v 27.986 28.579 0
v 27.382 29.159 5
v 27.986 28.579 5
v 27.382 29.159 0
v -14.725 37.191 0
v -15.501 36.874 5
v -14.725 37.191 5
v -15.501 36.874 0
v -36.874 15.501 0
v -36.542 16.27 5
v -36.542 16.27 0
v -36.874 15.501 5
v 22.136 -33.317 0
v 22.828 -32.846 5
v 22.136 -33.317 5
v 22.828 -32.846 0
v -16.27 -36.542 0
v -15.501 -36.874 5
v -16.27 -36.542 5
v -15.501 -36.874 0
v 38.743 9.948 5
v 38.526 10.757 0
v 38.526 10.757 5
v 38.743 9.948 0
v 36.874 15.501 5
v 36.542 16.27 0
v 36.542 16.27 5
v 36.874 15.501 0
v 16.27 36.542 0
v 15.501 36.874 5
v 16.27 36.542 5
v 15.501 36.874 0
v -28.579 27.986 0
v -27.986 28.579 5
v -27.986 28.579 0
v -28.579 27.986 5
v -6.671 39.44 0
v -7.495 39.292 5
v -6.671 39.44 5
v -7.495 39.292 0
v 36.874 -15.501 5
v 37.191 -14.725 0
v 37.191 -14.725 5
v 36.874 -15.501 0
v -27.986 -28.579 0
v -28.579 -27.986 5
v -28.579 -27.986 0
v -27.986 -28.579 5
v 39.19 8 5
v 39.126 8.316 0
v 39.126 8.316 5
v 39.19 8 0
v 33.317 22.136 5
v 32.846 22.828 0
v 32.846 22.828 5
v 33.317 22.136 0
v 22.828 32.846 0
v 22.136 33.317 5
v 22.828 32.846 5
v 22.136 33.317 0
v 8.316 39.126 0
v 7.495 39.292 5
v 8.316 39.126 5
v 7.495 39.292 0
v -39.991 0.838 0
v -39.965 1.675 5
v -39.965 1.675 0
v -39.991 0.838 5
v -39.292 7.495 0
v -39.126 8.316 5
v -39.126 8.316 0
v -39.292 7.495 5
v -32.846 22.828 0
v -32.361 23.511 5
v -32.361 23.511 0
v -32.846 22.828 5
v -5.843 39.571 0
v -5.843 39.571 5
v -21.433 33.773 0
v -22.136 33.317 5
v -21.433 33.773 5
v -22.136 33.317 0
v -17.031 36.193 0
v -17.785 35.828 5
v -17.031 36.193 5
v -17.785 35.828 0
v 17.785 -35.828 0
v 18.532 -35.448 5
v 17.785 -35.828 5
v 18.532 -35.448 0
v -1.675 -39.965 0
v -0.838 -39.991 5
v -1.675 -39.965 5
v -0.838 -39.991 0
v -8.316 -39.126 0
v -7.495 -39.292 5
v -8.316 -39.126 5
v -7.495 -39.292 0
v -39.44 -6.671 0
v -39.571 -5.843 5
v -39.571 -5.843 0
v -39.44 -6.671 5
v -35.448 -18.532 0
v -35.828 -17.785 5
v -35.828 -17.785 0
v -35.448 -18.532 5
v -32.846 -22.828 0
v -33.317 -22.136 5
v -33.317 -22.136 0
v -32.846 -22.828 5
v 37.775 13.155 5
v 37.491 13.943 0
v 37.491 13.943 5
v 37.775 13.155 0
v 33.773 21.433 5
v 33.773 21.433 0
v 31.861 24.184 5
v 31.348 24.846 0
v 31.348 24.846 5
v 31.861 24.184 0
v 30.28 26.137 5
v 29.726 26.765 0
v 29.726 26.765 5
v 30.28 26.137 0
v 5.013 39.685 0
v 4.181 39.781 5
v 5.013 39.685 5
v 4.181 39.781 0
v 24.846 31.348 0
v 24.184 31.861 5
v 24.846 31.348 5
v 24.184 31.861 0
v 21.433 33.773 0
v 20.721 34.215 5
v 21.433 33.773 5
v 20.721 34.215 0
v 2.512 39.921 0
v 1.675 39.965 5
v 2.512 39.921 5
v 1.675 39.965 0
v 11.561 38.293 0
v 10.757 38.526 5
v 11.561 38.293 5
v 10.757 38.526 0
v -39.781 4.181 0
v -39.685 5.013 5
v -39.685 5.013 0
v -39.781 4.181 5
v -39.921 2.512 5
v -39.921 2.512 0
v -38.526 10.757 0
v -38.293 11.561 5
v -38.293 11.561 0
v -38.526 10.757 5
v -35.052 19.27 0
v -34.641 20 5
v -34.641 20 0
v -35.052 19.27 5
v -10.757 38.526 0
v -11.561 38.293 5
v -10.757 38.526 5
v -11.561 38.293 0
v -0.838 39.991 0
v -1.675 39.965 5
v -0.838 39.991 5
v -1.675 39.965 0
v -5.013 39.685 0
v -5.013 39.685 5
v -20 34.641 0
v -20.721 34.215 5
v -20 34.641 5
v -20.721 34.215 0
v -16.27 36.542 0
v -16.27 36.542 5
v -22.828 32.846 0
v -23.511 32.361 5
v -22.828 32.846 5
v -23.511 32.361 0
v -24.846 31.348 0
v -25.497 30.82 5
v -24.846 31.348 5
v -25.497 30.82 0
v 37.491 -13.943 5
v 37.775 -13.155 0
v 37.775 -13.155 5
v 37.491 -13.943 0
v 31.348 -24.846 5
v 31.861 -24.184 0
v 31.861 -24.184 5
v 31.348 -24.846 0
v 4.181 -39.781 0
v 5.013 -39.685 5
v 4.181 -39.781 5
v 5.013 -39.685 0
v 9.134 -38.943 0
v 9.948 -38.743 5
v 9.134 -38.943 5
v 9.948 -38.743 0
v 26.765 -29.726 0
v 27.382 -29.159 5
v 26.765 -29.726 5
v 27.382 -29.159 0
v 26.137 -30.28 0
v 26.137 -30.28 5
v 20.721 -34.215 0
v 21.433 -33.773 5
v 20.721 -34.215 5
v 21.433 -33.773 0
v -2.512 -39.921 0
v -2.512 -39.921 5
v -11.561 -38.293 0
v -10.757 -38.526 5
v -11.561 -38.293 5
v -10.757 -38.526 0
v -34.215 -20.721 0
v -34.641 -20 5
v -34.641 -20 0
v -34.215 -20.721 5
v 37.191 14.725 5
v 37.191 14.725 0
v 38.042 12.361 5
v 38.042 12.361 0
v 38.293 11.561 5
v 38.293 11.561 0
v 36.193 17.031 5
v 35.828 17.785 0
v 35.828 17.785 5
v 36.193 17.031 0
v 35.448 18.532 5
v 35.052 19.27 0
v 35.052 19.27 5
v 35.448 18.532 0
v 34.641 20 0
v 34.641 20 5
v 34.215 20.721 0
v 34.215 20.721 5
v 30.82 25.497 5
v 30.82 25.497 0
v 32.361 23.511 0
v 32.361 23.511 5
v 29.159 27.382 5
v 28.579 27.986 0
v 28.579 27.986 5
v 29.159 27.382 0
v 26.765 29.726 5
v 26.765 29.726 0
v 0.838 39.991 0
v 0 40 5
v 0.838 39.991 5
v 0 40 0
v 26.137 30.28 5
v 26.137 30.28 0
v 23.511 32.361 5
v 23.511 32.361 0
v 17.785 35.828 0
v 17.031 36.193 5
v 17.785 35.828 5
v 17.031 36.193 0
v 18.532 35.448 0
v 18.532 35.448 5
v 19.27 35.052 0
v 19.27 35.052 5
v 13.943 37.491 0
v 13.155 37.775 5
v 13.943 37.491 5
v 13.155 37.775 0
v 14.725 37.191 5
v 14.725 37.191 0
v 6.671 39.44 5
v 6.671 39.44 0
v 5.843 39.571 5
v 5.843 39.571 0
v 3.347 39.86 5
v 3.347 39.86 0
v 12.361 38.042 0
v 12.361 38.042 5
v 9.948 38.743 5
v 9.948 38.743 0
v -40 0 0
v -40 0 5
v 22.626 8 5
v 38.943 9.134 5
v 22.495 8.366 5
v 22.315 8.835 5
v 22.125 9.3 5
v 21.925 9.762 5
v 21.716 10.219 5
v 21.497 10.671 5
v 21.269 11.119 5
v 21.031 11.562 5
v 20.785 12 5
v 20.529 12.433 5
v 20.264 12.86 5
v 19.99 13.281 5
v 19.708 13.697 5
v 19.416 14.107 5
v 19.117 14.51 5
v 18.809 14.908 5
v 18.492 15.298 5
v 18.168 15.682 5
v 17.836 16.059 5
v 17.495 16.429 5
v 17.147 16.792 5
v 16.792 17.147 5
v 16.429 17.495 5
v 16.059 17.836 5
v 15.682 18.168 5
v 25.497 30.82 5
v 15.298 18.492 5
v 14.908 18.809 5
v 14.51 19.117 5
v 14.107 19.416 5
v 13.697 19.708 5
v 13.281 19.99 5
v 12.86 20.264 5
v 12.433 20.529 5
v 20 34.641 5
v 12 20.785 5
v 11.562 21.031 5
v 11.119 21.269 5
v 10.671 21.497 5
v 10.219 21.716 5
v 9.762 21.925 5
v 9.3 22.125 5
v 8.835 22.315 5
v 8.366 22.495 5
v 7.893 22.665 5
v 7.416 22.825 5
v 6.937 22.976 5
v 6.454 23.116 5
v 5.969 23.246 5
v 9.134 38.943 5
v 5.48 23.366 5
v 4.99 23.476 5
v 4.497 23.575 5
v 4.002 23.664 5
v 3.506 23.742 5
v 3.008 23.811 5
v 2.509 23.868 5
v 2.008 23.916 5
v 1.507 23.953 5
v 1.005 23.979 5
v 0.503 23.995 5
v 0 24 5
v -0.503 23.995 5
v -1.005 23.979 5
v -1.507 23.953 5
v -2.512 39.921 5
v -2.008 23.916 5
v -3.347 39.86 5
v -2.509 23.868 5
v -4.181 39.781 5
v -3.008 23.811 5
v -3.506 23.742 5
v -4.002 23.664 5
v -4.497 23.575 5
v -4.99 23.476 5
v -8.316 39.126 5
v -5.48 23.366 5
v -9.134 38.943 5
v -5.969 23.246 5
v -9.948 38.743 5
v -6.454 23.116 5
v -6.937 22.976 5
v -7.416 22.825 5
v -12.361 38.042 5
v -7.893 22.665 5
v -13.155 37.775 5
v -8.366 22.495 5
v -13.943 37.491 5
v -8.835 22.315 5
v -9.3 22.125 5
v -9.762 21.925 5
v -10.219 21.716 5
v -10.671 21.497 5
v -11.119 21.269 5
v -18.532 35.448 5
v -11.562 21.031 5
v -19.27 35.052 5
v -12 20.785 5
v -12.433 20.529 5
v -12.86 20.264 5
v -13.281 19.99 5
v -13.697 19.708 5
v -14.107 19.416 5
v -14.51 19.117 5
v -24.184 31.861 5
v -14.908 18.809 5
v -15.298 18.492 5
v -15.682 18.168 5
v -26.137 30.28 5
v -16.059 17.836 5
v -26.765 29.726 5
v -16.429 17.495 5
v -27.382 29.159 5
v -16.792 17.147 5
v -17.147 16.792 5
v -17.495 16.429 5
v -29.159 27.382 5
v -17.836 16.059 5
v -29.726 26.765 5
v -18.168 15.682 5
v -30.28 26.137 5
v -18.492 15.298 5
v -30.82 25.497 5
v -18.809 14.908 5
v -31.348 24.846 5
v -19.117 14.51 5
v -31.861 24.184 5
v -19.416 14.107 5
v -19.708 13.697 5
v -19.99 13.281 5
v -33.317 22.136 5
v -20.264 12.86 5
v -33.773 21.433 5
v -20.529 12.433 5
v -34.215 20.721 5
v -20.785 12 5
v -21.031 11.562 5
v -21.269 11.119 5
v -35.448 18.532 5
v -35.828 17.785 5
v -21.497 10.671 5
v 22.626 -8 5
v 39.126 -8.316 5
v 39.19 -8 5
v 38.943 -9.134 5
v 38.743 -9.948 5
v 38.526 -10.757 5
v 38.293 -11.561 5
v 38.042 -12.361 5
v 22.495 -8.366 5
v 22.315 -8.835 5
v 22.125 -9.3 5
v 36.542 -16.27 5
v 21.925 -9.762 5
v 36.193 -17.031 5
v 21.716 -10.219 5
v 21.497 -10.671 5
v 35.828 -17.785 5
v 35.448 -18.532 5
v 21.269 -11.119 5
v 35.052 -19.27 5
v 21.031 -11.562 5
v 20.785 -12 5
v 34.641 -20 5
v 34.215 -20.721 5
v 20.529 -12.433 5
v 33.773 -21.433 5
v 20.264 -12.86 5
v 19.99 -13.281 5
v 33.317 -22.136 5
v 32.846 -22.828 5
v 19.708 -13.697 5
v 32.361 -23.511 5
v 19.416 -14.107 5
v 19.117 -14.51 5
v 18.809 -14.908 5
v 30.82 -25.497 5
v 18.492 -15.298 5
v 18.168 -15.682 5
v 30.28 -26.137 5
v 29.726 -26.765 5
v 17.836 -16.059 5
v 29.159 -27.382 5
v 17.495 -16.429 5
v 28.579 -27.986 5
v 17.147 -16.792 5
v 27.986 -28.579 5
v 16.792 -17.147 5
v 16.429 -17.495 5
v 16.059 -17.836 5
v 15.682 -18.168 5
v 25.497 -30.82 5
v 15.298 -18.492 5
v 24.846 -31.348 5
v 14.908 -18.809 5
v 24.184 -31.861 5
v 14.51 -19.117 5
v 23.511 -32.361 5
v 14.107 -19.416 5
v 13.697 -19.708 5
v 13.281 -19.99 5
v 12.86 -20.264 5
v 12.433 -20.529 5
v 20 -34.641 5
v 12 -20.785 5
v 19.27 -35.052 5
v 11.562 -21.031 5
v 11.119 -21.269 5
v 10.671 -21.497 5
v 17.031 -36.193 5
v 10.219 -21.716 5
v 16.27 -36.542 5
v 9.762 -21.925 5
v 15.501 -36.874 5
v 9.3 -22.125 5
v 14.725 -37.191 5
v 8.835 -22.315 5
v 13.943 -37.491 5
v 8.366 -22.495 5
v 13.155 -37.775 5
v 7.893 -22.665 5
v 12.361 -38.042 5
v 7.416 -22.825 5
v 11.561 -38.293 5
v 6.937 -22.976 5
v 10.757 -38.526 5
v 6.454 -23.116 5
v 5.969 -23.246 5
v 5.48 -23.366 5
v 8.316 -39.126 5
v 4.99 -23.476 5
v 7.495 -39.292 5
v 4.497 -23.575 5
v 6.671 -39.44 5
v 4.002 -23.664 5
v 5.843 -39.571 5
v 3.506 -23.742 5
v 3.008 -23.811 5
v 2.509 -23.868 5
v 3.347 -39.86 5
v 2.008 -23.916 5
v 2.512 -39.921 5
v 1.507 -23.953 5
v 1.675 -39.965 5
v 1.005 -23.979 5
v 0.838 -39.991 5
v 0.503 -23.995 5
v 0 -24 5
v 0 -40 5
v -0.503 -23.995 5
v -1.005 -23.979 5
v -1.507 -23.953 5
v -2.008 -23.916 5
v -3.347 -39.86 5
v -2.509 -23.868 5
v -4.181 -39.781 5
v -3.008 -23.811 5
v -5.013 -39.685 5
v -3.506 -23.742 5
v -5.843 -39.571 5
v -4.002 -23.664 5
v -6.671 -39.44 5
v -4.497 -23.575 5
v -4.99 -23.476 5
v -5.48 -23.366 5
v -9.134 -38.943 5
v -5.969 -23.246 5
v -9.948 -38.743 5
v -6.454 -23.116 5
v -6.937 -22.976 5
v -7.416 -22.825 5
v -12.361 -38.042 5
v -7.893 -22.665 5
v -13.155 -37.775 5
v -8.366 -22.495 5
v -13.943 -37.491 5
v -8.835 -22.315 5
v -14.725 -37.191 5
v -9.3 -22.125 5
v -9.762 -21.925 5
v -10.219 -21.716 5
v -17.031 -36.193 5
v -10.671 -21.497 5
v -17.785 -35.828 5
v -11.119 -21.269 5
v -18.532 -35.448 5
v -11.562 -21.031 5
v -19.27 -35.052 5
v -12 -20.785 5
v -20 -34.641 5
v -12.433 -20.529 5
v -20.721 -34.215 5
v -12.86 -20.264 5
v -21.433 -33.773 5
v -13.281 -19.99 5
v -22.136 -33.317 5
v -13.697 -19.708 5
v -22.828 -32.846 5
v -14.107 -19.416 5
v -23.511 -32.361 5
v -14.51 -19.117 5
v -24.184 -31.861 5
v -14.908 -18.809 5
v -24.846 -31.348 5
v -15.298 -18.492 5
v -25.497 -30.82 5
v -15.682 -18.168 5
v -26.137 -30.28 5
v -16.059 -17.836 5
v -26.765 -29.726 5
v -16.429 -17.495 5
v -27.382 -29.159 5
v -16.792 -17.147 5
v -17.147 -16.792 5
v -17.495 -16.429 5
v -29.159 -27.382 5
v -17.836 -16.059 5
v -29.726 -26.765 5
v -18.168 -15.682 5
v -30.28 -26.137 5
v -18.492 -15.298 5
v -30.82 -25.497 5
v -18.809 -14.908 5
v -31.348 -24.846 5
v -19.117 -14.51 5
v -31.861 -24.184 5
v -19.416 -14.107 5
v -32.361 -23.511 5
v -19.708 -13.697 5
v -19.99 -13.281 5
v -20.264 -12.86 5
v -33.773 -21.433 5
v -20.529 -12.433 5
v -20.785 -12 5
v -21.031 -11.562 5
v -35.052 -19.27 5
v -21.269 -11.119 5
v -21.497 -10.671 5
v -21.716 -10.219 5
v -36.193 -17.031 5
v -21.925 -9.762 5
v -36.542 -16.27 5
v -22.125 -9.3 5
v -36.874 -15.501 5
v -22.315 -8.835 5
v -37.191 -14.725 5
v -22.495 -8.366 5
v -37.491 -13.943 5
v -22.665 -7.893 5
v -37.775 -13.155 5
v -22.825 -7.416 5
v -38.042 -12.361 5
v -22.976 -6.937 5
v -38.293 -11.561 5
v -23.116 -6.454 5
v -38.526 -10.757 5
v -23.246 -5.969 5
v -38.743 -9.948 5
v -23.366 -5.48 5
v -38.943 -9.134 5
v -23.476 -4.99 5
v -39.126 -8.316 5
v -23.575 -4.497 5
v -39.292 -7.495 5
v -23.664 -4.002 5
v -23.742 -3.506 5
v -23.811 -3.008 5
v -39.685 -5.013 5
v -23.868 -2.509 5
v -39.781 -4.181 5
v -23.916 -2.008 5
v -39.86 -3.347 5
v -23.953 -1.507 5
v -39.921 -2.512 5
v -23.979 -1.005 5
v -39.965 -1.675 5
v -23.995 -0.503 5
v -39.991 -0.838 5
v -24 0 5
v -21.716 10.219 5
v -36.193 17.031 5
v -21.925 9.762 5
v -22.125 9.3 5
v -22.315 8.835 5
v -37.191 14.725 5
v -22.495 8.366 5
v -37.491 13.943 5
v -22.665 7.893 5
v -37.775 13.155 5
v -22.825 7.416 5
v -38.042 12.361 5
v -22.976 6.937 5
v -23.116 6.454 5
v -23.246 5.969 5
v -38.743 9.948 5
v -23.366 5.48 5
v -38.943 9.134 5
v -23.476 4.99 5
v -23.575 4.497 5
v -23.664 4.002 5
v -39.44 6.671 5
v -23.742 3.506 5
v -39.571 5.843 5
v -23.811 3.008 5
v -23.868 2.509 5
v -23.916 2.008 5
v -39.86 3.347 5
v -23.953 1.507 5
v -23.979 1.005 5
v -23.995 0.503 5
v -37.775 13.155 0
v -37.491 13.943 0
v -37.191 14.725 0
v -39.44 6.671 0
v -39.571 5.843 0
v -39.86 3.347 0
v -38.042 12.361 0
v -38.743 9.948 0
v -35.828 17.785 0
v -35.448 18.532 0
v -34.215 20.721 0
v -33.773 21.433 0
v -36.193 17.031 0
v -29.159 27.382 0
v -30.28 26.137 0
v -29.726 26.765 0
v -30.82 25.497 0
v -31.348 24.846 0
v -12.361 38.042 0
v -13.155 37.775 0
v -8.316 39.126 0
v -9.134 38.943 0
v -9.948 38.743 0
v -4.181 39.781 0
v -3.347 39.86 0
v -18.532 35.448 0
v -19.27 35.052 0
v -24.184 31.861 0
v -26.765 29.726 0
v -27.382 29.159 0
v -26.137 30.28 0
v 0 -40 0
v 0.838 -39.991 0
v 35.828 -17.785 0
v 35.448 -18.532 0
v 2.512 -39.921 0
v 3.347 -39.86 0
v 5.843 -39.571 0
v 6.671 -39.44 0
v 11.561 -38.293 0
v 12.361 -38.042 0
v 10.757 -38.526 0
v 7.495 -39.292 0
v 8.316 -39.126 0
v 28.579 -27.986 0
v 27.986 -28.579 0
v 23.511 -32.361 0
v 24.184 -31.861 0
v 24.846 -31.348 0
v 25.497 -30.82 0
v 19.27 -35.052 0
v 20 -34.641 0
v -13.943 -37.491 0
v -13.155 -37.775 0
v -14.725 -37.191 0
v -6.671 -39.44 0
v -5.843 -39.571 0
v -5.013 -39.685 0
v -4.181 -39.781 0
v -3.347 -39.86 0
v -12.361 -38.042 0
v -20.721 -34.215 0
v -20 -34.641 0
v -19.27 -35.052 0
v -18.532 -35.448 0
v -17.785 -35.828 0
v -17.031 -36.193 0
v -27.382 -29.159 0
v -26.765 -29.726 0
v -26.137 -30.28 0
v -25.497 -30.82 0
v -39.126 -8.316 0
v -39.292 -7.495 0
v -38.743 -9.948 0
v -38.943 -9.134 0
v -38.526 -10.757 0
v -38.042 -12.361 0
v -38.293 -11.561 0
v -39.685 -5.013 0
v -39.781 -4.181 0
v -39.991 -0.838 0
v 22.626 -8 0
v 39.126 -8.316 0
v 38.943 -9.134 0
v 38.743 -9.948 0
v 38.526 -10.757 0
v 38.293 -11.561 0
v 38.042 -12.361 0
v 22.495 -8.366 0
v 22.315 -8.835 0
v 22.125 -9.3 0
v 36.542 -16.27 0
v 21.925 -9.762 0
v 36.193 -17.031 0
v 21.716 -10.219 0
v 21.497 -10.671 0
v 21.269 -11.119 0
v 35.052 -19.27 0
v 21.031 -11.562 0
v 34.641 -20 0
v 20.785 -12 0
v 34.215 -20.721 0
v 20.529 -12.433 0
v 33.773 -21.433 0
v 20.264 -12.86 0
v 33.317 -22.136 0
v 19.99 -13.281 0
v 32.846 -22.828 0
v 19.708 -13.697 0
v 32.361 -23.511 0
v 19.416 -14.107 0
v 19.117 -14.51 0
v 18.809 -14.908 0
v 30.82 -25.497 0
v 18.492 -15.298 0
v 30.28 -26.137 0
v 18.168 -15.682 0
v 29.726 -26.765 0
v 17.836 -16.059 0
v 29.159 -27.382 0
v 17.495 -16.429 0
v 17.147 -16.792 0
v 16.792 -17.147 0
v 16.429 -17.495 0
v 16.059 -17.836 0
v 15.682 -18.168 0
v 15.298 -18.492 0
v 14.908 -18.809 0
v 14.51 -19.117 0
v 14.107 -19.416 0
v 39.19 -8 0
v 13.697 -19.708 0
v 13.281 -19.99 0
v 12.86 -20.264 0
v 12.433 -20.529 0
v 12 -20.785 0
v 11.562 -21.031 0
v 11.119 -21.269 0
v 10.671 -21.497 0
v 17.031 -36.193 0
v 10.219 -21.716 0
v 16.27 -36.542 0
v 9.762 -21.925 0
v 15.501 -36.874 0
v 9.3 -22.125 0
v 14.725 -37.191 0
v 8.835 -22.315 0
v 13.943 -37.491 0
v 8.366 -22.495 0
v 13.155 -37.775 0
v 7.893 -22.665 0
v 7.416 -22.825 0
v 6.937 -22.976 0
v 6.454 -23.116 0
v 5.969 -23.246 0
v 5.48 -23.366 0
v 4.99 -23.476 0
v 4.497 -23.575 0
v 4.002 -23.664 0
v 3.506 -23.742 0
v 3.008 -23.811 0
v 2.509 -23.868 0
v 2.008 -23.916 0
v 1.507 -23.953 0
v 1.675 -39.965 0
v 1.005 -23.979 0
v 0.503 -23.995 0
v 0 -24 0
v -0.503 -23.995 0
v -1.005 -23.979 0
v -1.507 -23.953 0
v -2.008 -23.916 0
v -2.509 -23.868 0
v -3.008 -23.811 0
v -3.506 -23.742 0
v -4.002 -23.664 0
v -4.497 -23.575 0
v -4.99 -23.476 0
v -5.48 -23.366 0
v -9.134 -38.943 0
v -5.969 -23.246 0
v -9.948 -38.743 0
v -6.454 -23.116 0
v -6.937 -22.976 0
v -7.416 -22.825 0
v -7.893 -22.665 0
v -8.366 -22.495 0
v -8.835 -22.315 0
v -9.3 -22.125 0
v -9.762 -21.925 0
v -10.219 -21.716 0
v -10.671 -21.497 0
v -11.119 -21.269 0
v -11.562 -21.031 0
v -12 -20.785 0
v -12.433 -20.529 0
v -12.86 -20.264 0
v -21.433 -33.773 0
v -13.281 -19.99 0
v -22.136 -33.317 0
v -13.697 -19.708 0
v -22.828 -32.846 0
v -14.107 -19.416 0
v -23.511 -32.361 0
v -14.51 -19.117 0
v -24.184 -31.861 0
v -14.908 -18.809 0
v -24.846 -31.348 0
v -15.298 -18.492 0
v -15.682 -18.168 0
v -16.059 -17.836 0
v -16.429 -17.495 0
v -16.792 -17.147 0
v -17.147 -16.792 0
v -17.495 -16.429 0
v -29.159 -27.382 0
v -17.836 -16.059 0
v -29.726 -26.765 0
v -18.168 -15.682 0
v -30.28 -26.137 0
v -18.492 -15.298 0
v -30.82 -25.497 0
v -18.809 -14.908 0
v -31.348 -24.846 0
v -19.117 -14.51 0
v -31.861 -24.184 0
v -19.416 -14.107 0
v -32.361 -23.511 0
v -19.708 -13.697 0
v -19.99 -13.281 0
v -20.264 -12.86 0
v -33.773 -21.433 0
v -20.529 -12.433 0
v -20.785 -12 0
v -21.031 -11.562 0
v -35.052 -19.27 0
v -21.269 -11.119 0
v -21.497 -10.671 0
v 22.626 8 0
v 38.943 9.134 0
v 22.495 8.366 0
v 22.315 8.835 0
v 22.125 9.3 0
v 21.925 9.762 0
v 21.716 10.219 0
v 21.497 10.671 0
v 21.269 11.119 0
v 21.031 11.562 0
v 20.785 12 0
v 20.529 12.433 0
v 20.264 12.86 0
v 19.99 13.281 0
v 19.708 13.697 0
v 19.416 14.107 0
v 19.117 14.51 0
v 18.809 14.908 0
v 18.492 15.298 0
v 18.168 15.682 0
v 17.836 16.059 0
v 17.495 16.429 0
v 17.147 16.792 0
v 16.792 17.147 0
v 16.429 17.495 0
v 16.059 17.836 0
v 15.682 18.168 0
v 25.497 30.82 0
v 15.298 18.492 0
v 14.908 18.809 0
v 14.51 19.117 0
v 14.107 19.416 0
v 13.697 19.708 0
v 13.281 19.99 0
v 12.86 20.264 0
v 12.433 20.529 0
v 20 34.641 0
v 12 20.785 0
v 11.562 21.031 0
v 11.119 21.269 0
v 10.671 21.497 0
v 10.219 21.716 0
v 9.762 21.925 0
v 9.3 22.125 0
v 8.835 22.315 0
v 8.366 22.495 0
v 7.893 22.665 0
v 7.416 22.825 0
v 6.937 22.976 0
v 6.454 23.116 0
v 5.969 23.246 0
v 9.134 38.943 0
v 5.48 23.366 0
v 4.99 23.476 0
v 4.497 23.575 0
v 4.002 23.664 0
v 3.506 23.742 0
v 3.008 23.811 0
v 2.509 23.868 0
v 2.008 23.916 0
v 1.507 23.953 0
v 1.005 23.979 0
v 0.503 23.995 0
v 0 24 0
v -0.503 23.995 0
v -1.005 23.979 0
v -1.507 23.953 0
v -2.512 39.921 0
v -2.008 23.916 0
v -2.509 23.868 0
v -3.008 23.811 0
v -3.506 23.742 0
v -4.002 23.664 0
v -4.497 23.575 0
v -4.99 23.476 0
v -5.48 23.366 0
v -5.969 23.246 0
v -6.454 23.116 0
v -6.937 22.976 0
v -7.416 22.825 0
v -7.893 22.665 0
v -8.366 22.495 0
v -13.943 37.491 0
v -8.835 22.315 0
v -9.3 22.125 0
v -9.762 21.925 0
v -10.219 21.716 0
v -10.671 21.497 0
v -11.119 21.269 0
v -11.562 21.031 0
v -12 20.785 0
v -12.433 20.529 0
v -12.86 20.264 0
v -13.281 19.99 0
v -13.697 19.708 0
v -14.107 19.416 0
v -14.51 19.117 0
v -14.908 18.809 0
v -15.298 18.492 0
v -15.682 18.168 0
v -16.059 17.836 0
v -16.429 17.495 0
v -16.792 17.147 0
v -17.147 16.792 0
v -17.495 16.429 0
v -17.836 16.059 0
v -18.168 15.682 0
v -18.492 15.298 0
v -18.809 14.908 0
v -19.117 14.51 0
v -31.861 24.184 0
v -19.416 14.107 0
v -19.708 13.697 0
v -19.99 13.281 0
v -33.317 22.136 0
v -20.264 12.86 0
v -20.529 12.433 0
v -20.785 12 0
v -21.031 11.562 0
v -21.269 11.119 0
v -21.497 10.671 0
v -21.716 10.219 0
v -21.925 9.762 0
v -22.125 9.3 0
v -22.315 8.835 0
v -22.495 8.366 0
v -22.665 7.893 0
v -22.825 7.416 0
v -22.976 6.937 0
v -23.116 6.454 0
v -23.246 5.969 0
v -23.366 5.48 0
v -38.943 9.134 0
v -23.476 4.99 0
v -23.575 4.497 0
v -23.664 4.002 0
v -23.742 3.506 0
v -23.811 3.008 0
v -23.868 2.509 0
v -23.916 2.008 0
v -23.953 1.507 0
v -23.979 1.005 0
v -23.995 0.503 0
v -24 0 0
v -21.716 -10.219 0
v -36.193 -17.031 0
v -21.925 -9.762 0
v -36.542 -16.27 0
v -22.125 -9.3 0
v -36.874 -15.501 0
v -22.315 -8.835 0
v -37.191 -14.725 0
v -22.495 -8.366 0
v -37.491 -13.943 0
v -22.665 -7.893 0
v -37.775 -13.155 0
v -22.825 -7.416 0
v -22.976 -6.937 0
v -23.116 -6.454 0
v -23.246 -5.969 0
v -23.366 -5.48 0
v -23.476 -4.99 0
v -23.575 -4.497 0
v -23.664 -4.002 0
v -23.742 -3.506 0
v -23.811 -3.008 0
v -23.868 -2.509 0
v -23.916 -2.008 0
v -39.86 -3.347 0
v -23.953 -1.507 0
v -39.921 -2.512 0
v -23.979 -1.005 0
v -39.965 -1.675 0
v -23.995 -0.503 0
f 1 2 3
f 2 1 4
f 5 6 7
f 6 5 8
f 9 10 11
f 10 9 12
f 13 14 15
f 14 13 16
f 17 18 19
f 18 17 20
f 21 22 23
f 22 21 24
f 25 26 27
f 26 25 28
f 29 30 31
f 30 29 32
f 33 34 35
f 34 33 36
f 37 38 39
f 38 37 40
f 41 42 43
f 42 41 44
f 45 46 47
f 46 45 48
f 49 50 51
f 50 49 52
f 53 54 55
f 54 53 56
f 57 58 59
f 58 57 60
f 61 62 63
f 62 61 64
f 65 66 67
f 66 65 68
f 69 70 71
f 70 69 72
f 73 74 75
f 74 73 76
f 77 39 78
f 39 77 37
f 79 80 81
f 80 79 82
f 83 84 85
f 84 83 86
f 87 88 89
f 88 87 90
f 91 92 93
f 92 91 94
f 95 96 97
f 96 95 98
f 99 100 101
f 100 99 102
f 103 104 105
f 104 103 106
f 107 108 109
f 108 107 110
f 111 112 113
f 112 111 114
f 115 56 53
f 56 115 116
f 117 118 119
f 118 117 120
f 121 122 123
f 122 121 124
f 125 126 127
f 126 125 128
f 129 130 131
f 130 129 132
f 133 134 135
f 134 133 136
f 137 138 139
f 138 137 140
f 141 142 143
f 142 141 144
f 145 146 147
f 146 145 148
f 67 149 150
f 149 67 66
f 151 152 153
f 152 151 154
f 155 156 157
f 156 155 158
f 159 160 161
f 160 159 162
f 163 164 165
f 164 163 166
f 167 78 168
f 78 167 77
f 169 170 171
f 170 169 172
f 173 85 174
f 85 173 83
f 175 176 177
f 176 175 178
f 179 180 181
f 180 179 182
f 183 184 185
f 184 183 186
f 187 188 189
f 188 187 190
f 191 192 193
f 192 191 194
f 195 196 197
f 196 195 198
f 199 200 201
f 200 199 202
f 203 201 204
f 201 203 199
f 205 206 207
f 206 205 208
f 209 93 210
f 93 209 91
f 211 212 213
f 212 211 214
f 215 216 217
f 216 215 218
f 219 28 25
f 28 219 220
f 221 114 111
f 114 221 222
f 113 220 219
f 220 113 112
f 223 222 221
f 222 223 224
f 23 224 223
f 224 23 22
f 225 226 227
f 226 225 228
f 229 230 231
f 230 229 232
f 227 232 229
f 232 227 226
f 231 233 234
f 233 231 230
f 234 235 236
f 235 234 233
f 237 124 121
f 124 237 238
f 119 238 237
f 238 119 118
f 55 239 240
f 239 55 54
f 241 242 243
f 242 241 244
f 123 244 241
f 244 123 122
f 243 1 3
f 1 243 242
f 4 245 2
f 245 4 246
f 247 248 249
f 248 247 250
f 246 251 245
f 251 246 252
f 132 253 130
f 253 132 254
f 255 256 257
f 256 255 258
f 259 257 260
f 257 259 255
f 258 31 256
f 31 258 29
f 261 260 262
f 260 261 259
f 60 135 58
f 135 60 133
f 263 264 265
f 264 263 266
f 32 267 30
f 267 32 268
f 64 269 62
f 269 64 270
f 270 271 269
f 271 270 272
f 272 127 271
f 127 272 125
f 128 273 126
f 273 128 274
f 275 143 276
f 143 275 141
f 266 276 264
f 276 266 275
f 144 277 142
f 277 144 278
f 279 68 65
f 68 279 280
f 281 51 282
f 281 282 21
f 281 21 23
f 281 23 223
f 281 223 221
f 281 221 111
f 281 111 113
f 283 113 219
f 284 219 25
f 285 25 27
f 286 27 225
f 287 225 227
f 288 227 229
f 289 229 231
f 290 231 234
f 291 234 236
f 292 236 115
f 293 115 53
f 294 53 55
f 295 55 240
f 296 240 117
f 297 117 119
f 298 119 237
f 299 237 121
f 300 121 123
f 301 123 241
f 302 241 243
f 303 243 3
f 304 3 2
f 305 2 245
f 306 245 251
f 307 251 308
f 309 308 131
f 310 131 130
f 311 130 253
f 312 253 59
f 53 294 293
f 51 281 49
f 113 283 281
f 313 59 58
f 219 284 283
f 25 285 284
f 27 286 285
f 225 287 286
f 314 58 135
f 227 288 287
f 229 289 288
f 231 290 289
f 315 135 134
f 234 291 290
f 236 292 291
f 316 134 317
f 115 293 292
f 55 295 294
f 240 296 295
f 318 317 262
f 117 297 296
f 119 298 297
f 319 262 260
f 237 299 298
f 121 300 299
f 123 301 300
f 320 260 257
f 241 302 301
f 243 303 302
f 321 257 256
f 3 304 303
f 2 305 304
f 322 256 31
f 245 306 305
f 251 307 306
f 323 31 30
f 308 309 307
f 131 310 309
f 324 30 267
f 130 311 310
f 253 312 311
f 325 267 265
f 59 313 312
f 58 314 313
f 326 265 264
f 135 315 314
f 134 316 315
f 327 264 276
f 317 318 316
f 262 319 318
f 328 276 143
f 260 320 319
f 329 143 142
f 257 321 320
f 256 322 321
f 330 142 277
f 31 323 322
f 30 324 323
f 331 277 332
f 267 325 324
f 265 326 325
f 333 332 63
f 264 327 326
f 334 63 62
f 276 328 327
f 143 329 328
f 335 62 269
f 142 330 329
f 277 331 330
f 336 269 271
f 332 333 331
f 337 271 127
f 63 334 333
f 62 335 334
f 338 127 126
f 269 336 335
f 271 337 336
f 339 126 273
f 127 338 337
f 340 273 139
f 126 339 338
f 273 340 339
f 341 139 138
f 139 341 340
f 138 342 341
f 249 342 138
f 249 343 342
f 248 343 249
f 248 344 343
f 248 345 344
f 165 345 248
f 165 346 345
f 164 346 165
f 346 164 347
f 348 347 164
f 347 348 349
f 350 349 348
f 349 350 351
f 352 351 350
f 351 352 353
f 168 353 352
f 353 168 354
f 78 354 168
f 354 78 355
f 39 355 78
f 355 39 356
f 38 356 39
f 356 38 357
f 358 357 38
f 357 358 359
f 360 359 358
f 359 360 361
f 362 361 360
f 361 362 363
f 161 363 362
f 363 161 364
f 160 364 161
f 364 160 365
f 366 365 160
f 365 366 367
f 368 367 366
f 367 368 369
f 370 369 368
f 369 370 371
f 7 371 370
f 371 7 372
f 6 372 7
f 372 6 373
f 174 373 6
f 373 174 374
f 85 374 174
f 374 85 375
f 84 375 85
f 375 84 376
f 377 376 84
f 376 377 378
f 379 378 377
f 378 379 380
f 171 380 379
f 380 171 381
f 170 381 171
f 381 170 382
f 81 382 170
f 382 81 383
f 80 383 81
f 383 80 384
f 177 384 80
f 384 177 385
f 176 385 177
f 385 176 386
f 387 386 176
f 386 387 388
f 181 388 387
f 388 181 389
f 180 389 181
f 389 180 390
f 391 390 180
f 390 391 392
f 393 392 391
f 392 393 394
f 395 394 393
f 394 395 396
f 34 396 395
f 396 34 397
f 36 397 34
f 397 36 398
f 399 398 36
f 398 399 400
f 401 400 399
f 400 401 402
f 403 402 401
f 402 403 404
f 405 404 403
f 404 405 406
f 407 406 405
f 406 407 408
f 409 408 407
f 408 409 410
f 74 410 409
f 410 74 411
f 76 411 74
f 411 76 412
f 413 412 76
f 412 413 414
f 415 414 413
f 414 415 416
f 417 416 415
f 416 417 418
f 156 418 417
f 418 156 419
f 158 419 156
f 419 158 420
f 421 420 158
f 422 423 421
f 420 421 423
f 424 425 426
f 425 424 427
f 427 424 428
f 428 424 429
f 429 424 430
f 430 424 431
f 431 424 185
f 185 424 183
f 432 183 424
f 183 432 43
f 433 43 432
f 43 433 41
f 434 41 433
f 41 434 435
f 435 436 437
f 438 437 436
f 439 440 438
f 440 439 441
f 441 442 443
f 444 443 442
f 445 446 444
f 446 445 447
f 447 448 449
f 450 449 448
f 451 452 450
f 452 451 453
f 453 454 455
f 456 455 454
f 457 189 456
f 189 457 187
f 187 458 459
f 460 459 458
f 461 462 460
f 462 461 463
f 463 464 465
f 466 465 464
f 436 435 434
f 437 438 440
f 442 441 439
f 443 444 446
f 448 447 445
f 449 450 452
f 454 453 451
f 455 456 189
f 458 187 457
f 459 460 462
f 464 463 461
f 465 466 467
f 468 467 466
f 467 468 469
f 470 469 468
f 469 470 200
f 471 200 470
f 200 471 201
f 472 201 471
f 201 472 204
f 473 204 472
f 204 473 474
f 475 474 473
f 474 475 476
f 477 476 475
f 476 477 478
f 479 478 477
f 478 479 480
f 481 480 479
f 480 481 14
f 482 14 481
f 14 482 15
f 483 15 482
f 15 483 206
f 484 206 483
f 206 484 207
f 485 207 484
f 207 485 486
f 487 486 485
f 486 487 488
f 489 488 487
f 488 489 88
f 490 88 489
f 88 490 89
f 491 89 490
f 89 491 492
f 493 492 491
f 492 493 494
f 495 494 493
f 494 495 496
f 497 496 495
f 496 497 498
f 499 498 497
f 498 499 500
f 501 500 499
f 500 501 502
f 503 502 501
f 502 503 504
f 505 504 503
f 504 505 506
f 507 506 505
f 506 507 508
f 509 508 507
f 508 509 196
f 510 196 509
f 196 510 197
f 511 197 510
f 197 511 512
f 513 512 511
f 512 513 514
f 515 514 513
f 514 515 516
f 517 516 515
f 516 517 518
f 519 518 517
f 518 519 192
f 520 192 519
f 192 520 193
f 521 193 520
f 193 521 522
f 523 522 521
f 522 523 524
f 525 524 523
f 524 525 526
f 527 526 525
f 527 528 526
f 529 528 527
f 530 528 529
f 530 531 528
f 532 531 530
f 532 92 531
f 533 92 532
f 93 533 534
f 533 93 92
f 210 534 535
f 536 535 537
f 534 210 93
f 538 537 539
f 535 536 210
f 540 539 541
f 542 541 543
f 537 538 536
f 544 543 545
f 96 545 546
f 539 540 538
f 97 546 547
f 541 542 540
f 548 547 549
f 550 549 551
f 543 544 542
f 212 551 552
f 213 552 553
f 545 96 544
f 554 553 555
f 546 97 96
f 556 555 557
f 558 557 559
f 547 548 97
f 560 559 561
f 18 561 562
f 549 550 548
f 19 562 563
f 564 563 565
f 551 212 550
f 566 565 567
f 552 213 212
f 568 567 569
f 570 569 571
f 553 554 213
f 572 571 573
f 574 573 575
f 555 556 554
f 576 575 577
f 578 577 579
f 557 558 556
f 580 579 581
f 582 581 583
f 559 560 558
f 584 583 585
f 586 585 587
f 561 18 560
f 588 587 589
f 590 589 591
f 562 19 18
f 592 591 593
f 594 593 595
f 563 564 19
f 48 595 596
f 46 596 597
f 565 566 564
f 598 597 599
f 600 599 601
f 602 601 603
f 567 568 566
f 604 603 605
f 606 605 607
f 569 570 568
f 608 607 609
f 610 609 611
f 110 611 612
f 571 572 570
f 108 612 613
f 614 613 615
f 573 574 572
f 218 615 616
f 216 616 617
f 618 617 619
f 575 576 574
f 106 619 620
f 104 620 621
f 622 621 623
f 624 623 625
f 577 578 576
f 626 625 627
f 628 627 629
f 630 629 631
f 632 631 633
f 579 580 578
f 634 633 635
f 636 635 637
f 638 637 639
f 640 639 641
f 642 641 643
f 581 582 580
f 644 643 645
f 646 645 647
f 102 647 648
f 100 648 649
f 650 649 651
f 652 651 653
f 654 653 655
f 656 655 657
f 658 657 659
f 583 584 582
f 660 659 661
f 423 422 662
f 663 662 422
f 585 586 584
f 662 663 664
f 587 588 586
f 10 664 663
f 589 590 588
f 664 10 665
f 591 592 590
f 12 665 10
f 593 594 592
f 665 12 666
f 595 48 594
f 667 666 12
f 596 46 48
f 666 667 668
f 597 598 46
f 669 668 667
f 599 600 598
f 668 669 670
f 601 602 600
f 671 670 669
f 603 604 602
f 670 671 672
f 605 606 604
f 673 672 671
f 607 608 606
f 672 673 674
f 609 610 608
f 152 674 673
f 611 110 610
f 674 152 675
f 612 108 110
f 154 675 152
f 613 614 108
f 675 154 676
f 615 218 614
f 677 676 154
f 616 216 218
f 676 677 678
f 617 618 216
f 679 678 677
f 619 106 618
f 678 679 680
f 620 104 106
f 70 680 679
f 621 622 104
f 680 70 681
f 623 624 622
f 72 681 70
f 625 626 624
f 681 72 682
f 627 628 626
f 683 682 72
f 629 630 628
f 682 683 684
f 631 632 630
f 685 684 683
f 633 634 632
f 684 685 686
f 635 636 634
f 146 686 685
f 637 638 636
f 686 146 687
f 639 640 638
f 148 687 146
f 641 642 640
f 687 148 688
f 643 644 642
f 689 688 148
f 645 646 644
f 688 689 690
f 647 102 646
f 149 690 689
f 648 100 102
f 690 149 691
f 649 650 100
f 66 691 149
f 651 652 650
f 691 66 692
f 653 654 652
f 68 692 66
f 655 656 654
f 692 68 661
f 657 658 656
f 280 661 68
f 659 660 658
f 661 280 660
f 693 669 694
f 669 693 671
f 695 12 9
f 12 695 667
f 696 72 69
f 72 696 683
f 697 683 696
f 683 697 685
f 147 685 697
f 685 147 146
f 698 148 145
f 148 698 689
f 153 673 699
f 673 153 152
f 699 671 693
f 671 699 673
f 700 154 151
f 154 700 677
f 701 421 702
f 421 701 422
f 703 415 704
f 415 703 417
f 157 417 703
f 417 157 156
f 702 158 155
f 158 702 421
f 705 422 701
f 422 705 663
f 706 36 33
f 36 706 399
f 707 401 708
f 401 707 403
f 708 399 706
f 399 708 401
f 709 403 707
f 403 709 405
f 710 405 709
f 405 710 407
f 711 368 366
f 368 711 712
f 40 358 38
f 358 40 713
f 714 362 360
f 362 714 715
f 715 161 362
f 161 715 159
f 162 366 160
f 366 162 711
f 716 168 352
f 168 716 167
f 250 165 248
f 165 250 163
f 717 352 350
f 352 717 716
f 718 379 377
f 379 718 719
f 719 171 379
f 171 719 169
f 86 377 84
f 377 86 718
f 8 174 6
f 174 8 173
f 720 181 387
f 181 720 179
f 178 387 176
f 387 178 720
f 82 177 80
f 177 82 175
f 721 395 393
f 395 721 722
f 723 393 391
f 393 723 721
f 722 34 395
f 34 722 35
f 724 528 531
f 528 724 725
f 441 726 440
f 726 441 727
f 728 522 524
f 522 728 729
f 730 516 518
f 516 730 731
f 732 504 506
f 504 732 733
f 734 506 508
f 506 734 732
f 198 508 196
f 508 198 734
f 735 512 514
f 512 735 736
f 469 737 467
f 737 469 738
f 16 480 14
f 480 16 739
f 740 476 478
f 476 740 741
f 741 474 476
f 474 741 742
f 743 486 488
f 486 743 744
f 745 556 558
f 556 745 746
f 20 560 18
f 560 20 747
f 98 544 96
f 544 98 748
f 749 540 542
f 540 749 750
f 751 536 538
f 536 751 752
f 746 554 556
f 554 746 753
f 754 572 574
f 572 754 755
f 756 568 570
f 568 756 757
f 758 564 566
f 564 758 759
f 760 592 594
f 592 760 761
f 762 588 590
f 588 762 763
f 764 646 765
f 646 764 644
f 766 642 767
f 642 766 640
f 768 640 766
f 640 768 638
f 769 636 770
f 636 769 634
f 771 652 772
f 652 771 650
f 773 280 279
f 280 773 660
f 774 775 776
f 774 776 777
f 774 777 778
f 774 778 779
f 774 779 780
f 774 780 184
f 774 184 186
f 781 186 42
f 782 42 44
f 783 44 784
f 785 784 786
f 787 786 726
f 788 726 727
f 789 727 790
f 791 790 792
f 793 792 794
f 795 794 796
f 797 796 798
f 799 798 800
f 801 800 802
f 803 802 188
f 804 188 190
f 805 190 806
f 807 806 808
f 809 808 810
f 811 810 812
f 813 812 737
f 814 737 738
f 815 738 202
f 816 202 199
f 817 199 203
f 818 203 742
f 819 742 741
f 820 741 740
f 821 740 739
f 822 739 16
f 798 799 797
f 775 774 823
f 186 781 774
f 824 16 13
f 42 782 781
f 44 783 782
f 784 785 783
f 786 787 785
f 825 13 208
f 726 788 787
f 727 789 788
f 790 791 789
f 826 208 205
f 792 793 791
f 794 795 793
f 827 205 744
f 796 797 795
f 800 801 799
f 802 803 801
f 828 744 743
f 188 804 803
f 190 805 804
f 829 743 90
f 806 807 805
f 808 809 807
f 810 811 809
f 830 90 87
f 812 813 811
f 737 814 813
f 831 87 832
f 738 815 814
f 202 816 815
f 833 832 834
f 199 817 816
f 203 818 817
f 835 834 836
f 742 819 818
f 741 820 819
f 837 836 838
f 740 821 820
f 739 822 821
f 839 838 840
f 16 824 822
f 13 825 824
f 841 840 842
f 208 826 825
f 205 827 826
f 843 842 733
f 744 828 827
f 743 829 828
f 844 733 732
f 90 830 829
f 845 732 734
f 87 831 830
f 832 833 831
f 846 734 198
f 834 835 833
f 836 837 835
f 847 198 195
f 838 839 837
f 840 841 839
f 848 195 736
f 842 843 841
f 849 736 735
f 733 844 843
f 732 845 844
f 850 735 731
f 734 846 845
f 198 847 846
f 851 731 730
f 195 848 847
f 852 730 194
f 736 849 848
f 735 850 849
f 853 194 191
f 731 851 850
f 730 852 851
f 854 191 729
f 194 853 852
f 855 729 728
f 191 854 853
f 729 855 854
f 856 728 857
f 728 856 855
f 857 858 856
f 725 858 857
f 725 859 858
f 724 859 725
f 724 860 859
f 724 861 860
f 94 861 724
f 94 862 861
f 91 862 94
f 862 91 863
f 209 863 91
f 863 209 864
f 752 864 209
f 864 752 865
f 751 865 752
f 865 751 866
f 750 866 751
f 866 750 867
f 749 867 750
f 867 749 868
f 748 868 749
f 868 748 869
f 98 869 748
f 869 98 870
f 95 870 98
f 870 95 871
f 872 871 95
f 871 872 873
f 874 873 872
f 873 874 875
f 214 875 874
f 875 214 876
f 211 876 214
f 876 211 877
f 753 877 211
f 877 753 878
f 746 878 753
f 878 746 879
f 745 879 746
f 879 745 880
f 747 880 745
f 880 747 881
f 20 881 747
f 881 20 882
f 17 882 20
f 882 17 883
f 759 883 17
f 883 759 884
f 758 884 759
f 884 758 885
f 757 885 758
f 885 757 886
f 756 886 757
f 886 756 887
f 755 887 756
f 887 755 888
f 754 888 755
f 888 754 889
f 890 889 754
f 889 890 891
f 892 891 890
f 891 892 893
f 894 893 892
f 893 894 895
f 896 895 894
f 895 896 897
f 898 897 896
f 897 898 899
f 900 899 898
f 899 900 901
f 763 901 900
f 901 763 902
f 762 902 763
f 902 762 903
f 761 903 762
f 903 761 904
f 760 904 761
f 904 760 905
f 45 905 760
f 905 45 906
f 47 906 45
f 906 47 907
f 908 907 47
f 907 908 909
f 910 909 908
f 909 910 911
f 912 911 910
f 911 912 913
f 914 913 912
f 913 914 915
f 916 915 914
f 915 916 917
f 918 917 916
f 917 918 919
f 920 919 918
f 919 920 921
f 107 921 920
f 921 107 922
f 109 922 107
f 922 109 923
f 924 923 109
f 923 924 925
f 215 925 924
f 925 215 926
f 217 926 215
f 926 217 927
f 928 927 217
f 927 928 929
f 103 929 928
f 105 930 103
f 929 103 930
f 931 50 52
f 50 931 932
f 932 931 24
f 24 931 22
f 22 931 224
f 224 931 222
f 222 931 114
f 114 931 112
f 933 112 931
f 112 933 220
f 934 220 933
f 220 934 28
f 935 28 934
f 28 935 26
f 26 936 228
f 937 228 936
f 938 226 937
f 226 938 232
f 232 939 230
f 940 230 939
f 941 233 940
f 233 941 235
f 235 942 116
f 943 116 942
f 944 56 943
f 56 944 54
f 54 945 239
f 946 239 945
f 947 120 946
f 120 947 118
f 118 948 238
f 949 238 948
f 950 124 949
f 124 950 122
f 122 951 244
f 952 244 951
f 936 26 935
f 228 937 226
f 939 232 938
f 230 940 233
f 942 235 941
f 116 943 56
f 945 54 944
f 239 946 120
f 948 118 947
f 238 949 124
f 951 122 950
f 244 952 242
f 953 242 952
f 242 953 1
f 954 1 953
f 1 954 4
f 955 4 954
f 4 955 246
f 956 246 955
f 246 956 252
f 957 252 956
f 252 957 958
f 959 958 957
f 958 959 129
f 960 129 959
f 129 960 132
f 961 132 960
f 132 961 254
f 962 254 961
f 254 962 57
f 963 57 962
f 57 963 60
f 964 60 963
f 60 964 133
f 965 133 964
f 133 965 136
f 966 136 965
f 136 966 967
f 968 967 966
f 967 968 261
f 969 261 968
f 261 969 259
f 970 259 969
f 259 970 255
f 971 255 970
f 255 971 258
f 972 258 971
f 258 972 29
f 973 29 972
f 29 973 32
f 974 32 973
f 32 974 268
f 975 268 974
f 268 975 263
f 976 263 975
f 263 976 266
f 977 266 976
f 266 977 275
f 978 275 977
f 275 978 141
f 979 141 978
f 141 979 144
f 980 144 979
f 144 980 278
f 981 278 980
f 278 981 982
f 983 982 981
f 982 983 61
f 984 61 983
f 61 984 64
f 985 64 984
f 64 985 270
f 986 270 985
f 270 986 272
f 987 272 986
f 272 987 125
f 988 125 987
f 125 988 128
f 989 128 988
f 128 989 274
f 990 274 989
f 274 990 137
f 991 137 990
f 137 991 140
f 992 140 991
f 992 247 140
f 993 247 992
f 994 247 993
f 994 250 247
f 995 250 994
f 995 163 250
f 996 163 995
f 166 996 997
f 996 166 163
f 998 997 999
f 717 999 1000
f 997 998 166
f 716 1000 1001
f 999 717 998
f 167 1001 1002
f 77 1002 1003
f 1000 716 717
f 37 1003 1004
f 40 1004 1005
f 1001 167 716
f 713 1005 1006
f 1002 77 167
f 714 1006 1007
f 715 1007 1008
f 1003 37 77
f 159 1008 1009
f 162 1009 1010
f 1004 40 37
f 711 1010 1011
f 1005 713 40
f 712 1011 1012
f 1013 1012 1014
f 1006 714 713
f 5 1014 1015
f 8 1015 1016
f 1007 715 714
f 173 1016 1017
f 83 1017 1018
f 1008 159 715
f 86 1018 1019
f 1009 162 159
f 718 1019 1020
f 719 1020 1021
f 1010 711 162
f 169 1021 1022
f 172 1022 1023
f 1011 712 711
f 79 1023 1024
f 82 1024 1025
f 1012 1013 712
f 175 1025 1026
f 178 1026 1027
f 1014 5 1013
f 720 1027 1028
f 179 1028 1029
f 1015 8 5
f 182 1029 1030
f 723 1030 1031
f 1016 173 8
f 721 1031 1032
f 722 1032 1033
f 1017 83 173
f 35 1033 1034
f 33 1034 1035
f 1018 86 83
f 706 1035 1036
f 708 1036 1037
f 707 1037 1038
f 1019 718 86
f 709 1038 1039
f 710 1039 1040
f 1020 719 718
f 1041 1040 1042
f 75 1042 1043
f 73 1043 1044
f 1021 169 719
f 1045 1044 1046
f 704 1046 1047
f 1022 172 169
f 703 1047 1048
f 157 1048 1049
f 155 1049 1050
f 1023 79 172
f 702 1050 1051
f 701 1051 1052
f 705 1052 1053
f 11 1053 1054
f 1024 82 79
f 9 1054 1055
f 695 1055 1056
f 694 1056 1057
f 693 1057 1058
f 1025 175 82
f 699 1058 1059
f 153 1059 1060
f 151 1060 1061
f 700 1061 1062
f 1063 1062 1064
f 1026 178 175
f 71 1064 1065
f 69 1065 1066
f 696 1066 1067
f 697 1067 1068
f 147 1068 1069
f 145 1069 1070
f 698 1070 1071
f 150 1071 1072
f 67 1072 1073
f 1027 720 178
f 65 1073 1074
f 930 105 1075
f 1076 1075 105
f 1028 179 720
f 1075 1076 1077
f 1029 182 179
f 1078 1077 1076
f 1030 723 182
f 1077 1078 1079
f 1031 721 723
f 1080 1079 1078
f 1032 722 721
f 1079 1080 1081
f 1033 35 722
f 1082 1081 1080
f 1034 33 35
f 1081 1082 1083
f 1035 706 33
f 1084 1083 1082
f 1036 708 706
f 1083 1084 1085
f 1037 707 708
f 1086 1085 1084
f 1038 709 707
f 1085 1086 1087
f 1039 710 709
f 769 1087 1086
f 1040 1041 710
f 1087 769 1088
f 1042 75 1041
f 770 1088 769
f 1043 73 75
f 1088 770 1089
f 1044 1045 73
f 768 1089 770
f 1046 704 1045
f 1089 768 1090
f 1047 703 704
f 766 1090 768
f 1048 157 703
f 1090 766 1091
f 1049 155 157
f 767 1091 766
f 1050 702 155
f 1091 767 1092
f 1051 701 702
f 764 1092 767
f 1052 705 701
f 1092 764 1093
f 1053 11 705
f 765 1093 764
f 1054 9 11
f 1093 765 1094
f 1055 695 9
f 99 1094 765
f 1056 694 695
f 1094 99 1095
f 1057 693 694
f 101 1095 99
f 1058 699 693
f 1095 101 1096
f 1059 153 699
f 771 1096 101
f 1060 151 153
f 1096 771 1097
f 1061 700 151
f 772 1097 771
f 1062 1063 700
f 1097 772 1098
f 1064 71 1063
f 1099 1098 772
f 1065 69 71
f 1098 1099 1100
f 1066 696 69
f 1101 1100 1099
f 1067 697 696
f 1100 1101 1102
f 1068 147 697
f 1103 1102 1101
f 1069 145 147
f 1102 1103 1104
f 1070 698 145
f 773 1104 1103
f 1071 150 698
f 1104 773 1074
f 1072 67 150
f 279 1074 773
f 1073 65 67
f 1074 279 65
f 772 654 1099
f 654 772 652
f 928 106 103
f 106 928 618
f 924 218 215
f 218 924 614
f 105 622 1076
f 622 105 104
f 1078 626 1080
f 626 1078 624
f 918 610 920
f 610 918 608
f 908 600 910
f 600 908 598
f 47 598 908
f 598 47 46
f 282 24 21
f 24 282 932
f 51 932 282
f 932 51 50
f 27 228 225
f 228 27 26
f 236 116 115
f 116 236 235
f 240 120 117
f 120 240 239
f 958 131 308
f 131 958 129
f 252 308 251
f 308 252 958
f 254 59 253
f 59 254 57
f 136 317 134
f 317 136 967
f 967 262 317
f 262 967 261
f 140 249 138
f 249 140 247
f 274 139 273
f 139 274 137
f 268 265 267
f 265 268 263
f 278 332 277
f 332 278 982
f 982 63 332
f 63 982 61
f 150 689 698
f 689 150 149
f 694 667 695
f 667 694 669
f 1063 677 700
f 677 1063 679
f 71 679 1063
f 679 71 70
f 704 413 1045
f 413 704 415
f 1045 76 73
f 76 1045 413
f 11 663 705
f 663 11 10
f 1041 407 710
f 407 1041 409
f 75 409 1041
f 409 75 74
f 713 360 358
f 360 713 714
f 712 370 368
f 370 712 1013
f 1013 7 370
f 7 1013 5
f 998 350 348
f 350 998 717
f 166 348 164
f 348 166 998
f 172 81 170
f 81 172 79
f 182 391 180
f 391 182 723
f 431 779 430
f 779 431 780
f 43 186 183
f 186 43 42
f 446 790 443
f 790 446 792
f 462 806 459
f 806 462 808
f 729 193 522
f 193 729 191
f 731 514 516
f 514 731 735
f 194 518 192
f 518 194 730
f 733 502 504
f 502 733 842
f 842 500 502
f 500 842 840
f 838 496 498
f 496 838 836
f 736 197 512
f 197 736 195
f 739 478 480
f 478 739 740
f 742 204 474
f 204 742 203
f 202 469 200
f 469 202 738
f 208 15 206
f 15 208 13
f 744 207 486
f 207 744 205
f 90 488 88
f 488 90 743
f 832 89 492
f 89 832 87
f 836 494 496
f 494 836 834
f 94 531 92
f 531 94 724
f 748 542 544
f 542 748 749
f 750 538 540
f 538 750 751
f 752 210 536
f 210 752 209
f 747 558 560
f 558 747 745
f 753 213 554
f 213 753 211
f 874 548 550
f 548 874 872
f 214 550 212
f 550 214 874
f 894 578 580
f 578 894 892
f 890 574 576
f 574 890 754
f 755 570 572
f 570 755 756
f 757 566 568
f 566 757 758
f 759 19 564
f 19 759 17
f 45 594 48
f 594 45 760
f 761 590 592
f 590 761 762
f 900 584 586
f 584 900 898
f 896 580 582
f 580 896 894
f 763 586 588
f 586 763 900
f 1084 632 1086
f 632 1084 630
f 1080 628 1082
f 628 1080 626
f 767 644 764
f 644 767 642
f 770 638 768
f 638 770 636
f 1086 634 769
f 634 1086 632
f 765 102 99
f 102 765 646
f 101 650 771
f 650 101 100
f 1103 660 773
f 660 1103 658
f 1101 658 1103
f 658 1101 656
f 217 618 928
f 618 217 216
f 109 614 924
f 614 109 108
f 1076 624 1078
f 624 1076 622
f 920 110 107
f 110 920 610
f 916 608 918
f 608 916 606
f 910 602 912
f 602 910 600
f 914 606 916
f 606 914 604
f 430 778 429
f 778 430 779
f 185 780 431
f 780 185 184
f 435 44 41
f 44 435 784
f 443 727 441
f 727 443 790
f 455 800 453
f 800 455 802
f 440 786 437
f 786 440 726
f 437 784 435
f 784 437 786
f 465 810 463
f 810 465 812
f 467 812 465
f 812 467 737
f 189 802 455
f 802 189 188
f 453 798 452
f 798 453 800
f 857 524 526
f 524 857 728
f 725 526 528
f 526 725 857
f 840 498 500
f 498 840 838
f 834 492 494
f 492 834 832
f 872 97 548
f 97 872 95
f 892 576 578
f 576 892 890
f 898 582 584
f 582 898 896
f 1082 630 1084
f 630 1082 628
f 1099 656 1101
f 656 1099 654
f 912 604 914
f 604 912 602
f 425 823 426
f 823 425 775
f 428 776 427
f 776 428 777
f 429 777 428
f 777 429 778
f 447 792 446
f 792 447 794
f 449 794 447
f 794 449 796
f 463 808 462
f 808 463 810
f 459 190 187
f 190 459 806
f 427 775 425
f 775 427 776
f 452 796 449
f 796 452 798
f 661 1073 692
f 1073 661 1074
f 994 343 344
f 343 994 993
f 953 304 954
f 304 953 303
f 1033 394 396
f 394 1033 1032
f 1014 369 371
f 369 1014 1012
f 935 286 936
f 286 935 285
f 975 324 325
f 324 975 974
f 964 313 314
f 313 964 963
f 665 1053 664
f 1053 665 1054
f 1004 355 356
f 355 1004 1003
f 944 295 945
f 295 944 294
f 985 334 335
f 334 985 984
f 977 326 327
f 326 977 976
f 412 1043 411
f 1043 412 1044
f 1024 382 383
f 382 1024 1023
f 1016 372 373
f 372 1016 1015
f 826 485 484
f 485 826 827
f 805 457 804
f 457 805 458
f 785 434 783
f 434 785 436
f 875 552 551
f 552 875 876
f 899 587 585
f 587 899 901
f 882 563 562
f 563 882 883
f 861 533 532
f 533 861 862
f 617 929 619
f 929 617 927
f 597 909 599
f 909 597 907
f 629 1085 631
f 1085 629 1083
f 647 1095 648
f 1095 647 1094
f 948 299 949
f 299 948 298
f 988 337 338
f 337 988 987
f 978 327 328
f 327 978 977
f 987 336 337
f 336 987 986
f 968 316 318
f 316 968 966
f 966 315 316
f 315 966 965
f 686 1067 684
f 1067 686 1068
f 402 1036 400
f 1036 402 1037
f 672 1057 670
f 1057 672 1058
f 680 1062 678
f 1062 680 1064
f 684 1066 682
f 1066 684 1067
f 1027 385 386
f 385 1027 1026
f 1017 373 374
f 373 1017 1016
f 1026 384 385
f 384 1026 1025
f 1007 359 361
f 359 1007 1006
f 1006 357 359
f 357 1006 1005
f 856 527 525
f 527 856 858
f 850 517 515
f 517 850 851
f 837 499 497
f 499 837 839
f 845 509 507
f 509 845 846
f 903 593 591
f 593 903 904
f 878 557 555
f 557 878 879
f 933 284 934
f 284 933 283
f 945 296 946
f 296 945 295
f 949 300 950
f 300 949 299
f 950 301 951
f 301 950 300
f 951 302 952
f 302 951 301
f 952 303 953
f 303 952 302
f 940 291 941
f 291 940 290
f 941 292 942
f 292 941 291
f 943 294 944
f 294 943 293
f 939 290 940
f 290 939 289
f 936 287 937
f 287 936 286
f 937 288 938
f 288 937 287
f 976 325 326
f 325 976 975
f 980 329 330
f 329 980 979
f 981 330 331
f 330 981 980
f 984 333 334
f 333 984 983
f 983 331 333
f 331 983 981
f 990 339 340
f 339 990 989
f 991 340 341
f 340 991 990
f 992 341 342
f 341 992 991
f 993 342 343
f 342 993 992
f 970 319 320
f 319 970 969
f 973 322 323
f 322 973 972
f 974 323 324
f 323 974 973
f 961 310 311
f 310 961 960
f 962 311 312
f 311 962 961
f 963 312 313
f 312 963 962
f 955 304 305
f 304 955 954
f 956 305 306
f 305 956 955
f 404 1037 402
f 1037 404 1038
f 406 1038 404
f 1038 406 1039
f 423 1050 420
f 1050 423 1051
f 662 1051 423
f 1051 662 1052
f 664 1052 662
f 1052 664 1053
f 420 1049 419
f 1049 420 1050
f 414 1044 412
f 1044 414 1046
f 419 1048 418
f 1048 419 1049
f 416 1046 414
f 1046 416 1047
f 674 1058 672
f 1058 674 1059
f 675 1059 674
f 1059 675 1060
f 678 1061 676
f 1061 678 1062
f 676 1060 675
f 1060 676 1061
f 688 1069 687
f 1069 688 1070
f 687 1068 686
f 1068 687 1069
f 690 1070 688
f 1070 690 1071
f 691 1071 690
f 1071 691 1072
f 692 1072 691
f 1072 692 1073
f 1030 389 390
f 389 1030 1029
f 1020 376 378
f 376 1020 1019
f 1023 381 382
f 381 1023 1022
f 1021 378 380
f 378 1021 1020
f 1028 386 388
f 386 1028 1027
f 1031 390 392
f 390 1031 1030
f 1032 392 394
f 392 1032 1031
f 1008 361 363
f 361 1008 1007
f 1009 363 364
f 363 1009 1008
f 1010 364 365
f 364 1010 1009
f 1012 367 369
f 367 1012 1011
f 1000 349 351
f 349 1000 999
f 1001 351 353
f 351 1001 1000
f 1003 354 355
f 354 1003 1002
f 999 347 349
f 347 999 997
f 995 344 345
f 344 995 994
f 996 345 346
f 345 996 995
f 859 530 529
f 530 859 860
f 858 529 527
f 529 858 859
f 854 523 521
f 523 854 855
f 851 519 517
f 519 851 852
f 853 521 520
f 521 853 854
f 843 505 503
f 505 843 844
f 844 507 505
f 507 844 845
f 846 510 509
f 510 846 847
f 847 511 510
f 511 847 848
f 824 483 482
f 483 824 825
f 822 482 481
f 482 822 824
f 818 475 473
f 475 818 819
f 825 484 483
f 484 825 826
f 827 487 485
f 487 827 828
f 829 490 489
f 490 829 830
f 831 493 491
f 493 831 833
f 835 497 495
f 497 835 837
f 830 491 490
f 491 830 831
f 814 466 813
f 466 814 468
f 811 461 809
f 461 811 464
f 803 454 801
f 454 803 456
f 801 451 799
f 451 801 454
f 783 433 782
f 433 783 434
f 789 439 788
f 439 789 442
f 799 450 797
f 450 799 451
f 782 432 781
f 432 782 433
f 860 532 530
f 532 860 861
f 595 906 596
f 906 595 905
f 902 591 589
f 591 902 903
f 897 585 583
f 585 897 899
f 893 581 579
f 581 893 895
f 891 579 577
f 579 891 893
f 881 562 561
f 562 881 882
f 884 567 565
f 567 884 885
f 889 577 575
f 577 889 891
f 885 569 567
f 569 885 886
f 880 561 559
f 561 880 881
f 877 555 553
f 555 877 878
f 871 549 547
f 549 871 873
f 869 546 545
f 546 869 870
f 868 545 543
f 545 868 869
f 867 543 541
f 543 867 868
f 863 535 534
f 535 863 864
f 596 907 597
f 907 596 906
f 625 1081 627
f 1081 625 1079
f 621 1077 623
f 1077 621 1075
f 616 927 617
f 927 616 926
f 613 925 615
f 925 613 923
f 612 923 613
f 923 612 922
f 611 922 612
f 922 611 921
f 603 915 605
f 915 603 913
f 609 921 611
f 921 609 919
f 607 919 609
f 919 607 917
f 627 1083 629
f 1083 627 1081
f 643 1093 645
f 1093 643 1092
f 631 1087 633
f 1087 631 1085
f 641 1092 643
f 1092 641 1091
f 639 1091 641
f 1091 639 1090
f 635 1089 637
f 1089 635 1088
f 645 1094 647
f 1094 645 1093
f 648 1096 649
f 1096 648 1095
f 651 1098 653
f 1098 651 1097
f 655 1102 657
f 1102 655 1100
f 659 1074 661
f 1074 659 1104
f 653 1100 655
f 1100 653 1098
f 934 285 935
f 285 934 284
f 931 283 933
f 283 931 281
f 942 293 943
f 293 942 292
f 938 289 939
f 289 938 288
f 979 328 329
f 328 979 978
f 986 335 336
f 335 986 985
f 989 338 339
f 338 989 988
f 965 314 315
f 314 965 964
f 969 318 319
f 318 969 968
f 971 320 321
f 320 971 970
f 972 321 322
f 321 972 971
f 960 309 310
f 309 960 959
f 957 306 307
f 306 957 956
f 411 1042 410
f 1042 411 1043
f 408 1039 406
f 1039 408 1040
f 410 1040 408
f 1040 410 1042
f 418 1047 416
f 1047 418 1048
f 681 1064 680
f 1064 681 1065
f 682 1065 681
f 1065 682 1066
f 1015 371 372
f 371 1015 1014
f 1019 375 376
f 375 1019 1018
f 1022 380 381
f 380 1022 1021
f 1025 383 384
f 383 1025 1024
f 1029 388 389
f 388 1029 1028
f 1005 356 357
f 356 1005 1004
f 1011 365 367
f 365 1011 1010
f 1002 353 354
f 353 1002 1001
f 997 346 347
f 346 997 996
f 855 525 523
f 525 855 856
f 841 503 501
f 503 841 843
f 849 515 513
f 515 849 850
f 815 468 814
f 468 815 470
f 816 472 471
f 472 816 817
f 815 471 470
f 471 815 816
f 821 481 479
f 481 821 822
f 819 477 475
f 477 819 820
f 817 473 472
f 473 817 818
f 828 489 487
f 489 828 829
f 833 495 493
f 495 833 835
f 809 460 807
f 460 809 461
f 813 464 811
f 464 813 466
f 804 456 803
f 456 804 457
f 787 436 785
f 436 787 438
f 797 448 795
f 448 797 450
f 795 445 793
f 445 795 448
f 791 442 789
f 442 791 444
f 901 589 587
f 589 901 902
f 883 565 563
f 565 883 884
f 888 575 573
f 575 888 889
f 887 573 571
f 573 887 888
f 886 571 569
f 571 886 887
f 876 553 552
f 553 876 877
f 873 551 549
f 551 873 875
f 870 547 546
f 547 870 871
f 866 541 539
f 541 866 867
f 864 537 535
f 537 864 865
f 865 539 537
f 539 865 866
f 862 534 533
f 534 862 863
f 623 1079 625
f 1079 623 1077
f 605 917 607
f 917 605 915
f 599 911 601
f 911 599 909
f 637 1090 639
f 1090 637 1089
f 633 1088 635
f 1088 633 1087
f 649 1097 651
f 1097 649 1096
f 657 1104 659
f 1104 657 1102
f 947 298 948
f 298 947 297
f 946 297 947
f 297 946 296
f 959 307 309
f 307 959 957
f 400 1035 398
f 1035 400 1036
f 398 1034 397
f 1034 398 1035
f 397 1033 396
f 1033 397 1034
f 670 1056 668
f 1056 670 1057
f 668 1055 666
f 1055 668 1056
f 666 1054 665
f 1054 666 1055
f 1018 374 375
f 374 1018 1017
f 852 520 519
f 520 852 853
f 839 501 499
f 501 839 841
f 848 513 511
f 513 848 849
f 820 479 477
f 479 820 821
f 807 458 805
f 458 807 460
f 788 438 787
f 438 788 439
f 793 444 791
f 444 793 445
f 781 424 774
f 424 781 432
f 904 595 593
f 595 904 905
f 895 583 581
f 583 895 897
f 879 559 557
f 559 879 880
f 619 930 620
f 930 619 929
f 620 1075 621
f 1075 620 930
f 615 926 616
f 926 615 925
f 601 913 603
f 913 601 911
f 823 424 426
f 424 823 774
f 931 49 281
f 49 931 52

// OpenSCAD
// rocket_d=80;                                // 3cm wide;
// rocket_r = rocket_d / 2;
// rocket_h = 10;                            // 10cm tall
// cylinder(d=rocket_d, h=rocket_h);

//height_c = 10;
//linear_extrude(height=height_c)
//circle( r = 80, $fn=300);




module landoltring(height, outer_radius) {
    difference() {
        cylinder(h = height, r = outer_radius, $fn=300);
        translate([0,0,-1])
            cylinder(h = height + 2, r = ((outer_radius*3)/5), $fn=300);
            translate([(((outer_radius*3)/5)-10),-(outer_radius/5),0])
            cube([(((outer_radius*5)/3)*2),((outer_radius/5)*2),height]);
        }
   }
    
    
    landoltring(5,40);
